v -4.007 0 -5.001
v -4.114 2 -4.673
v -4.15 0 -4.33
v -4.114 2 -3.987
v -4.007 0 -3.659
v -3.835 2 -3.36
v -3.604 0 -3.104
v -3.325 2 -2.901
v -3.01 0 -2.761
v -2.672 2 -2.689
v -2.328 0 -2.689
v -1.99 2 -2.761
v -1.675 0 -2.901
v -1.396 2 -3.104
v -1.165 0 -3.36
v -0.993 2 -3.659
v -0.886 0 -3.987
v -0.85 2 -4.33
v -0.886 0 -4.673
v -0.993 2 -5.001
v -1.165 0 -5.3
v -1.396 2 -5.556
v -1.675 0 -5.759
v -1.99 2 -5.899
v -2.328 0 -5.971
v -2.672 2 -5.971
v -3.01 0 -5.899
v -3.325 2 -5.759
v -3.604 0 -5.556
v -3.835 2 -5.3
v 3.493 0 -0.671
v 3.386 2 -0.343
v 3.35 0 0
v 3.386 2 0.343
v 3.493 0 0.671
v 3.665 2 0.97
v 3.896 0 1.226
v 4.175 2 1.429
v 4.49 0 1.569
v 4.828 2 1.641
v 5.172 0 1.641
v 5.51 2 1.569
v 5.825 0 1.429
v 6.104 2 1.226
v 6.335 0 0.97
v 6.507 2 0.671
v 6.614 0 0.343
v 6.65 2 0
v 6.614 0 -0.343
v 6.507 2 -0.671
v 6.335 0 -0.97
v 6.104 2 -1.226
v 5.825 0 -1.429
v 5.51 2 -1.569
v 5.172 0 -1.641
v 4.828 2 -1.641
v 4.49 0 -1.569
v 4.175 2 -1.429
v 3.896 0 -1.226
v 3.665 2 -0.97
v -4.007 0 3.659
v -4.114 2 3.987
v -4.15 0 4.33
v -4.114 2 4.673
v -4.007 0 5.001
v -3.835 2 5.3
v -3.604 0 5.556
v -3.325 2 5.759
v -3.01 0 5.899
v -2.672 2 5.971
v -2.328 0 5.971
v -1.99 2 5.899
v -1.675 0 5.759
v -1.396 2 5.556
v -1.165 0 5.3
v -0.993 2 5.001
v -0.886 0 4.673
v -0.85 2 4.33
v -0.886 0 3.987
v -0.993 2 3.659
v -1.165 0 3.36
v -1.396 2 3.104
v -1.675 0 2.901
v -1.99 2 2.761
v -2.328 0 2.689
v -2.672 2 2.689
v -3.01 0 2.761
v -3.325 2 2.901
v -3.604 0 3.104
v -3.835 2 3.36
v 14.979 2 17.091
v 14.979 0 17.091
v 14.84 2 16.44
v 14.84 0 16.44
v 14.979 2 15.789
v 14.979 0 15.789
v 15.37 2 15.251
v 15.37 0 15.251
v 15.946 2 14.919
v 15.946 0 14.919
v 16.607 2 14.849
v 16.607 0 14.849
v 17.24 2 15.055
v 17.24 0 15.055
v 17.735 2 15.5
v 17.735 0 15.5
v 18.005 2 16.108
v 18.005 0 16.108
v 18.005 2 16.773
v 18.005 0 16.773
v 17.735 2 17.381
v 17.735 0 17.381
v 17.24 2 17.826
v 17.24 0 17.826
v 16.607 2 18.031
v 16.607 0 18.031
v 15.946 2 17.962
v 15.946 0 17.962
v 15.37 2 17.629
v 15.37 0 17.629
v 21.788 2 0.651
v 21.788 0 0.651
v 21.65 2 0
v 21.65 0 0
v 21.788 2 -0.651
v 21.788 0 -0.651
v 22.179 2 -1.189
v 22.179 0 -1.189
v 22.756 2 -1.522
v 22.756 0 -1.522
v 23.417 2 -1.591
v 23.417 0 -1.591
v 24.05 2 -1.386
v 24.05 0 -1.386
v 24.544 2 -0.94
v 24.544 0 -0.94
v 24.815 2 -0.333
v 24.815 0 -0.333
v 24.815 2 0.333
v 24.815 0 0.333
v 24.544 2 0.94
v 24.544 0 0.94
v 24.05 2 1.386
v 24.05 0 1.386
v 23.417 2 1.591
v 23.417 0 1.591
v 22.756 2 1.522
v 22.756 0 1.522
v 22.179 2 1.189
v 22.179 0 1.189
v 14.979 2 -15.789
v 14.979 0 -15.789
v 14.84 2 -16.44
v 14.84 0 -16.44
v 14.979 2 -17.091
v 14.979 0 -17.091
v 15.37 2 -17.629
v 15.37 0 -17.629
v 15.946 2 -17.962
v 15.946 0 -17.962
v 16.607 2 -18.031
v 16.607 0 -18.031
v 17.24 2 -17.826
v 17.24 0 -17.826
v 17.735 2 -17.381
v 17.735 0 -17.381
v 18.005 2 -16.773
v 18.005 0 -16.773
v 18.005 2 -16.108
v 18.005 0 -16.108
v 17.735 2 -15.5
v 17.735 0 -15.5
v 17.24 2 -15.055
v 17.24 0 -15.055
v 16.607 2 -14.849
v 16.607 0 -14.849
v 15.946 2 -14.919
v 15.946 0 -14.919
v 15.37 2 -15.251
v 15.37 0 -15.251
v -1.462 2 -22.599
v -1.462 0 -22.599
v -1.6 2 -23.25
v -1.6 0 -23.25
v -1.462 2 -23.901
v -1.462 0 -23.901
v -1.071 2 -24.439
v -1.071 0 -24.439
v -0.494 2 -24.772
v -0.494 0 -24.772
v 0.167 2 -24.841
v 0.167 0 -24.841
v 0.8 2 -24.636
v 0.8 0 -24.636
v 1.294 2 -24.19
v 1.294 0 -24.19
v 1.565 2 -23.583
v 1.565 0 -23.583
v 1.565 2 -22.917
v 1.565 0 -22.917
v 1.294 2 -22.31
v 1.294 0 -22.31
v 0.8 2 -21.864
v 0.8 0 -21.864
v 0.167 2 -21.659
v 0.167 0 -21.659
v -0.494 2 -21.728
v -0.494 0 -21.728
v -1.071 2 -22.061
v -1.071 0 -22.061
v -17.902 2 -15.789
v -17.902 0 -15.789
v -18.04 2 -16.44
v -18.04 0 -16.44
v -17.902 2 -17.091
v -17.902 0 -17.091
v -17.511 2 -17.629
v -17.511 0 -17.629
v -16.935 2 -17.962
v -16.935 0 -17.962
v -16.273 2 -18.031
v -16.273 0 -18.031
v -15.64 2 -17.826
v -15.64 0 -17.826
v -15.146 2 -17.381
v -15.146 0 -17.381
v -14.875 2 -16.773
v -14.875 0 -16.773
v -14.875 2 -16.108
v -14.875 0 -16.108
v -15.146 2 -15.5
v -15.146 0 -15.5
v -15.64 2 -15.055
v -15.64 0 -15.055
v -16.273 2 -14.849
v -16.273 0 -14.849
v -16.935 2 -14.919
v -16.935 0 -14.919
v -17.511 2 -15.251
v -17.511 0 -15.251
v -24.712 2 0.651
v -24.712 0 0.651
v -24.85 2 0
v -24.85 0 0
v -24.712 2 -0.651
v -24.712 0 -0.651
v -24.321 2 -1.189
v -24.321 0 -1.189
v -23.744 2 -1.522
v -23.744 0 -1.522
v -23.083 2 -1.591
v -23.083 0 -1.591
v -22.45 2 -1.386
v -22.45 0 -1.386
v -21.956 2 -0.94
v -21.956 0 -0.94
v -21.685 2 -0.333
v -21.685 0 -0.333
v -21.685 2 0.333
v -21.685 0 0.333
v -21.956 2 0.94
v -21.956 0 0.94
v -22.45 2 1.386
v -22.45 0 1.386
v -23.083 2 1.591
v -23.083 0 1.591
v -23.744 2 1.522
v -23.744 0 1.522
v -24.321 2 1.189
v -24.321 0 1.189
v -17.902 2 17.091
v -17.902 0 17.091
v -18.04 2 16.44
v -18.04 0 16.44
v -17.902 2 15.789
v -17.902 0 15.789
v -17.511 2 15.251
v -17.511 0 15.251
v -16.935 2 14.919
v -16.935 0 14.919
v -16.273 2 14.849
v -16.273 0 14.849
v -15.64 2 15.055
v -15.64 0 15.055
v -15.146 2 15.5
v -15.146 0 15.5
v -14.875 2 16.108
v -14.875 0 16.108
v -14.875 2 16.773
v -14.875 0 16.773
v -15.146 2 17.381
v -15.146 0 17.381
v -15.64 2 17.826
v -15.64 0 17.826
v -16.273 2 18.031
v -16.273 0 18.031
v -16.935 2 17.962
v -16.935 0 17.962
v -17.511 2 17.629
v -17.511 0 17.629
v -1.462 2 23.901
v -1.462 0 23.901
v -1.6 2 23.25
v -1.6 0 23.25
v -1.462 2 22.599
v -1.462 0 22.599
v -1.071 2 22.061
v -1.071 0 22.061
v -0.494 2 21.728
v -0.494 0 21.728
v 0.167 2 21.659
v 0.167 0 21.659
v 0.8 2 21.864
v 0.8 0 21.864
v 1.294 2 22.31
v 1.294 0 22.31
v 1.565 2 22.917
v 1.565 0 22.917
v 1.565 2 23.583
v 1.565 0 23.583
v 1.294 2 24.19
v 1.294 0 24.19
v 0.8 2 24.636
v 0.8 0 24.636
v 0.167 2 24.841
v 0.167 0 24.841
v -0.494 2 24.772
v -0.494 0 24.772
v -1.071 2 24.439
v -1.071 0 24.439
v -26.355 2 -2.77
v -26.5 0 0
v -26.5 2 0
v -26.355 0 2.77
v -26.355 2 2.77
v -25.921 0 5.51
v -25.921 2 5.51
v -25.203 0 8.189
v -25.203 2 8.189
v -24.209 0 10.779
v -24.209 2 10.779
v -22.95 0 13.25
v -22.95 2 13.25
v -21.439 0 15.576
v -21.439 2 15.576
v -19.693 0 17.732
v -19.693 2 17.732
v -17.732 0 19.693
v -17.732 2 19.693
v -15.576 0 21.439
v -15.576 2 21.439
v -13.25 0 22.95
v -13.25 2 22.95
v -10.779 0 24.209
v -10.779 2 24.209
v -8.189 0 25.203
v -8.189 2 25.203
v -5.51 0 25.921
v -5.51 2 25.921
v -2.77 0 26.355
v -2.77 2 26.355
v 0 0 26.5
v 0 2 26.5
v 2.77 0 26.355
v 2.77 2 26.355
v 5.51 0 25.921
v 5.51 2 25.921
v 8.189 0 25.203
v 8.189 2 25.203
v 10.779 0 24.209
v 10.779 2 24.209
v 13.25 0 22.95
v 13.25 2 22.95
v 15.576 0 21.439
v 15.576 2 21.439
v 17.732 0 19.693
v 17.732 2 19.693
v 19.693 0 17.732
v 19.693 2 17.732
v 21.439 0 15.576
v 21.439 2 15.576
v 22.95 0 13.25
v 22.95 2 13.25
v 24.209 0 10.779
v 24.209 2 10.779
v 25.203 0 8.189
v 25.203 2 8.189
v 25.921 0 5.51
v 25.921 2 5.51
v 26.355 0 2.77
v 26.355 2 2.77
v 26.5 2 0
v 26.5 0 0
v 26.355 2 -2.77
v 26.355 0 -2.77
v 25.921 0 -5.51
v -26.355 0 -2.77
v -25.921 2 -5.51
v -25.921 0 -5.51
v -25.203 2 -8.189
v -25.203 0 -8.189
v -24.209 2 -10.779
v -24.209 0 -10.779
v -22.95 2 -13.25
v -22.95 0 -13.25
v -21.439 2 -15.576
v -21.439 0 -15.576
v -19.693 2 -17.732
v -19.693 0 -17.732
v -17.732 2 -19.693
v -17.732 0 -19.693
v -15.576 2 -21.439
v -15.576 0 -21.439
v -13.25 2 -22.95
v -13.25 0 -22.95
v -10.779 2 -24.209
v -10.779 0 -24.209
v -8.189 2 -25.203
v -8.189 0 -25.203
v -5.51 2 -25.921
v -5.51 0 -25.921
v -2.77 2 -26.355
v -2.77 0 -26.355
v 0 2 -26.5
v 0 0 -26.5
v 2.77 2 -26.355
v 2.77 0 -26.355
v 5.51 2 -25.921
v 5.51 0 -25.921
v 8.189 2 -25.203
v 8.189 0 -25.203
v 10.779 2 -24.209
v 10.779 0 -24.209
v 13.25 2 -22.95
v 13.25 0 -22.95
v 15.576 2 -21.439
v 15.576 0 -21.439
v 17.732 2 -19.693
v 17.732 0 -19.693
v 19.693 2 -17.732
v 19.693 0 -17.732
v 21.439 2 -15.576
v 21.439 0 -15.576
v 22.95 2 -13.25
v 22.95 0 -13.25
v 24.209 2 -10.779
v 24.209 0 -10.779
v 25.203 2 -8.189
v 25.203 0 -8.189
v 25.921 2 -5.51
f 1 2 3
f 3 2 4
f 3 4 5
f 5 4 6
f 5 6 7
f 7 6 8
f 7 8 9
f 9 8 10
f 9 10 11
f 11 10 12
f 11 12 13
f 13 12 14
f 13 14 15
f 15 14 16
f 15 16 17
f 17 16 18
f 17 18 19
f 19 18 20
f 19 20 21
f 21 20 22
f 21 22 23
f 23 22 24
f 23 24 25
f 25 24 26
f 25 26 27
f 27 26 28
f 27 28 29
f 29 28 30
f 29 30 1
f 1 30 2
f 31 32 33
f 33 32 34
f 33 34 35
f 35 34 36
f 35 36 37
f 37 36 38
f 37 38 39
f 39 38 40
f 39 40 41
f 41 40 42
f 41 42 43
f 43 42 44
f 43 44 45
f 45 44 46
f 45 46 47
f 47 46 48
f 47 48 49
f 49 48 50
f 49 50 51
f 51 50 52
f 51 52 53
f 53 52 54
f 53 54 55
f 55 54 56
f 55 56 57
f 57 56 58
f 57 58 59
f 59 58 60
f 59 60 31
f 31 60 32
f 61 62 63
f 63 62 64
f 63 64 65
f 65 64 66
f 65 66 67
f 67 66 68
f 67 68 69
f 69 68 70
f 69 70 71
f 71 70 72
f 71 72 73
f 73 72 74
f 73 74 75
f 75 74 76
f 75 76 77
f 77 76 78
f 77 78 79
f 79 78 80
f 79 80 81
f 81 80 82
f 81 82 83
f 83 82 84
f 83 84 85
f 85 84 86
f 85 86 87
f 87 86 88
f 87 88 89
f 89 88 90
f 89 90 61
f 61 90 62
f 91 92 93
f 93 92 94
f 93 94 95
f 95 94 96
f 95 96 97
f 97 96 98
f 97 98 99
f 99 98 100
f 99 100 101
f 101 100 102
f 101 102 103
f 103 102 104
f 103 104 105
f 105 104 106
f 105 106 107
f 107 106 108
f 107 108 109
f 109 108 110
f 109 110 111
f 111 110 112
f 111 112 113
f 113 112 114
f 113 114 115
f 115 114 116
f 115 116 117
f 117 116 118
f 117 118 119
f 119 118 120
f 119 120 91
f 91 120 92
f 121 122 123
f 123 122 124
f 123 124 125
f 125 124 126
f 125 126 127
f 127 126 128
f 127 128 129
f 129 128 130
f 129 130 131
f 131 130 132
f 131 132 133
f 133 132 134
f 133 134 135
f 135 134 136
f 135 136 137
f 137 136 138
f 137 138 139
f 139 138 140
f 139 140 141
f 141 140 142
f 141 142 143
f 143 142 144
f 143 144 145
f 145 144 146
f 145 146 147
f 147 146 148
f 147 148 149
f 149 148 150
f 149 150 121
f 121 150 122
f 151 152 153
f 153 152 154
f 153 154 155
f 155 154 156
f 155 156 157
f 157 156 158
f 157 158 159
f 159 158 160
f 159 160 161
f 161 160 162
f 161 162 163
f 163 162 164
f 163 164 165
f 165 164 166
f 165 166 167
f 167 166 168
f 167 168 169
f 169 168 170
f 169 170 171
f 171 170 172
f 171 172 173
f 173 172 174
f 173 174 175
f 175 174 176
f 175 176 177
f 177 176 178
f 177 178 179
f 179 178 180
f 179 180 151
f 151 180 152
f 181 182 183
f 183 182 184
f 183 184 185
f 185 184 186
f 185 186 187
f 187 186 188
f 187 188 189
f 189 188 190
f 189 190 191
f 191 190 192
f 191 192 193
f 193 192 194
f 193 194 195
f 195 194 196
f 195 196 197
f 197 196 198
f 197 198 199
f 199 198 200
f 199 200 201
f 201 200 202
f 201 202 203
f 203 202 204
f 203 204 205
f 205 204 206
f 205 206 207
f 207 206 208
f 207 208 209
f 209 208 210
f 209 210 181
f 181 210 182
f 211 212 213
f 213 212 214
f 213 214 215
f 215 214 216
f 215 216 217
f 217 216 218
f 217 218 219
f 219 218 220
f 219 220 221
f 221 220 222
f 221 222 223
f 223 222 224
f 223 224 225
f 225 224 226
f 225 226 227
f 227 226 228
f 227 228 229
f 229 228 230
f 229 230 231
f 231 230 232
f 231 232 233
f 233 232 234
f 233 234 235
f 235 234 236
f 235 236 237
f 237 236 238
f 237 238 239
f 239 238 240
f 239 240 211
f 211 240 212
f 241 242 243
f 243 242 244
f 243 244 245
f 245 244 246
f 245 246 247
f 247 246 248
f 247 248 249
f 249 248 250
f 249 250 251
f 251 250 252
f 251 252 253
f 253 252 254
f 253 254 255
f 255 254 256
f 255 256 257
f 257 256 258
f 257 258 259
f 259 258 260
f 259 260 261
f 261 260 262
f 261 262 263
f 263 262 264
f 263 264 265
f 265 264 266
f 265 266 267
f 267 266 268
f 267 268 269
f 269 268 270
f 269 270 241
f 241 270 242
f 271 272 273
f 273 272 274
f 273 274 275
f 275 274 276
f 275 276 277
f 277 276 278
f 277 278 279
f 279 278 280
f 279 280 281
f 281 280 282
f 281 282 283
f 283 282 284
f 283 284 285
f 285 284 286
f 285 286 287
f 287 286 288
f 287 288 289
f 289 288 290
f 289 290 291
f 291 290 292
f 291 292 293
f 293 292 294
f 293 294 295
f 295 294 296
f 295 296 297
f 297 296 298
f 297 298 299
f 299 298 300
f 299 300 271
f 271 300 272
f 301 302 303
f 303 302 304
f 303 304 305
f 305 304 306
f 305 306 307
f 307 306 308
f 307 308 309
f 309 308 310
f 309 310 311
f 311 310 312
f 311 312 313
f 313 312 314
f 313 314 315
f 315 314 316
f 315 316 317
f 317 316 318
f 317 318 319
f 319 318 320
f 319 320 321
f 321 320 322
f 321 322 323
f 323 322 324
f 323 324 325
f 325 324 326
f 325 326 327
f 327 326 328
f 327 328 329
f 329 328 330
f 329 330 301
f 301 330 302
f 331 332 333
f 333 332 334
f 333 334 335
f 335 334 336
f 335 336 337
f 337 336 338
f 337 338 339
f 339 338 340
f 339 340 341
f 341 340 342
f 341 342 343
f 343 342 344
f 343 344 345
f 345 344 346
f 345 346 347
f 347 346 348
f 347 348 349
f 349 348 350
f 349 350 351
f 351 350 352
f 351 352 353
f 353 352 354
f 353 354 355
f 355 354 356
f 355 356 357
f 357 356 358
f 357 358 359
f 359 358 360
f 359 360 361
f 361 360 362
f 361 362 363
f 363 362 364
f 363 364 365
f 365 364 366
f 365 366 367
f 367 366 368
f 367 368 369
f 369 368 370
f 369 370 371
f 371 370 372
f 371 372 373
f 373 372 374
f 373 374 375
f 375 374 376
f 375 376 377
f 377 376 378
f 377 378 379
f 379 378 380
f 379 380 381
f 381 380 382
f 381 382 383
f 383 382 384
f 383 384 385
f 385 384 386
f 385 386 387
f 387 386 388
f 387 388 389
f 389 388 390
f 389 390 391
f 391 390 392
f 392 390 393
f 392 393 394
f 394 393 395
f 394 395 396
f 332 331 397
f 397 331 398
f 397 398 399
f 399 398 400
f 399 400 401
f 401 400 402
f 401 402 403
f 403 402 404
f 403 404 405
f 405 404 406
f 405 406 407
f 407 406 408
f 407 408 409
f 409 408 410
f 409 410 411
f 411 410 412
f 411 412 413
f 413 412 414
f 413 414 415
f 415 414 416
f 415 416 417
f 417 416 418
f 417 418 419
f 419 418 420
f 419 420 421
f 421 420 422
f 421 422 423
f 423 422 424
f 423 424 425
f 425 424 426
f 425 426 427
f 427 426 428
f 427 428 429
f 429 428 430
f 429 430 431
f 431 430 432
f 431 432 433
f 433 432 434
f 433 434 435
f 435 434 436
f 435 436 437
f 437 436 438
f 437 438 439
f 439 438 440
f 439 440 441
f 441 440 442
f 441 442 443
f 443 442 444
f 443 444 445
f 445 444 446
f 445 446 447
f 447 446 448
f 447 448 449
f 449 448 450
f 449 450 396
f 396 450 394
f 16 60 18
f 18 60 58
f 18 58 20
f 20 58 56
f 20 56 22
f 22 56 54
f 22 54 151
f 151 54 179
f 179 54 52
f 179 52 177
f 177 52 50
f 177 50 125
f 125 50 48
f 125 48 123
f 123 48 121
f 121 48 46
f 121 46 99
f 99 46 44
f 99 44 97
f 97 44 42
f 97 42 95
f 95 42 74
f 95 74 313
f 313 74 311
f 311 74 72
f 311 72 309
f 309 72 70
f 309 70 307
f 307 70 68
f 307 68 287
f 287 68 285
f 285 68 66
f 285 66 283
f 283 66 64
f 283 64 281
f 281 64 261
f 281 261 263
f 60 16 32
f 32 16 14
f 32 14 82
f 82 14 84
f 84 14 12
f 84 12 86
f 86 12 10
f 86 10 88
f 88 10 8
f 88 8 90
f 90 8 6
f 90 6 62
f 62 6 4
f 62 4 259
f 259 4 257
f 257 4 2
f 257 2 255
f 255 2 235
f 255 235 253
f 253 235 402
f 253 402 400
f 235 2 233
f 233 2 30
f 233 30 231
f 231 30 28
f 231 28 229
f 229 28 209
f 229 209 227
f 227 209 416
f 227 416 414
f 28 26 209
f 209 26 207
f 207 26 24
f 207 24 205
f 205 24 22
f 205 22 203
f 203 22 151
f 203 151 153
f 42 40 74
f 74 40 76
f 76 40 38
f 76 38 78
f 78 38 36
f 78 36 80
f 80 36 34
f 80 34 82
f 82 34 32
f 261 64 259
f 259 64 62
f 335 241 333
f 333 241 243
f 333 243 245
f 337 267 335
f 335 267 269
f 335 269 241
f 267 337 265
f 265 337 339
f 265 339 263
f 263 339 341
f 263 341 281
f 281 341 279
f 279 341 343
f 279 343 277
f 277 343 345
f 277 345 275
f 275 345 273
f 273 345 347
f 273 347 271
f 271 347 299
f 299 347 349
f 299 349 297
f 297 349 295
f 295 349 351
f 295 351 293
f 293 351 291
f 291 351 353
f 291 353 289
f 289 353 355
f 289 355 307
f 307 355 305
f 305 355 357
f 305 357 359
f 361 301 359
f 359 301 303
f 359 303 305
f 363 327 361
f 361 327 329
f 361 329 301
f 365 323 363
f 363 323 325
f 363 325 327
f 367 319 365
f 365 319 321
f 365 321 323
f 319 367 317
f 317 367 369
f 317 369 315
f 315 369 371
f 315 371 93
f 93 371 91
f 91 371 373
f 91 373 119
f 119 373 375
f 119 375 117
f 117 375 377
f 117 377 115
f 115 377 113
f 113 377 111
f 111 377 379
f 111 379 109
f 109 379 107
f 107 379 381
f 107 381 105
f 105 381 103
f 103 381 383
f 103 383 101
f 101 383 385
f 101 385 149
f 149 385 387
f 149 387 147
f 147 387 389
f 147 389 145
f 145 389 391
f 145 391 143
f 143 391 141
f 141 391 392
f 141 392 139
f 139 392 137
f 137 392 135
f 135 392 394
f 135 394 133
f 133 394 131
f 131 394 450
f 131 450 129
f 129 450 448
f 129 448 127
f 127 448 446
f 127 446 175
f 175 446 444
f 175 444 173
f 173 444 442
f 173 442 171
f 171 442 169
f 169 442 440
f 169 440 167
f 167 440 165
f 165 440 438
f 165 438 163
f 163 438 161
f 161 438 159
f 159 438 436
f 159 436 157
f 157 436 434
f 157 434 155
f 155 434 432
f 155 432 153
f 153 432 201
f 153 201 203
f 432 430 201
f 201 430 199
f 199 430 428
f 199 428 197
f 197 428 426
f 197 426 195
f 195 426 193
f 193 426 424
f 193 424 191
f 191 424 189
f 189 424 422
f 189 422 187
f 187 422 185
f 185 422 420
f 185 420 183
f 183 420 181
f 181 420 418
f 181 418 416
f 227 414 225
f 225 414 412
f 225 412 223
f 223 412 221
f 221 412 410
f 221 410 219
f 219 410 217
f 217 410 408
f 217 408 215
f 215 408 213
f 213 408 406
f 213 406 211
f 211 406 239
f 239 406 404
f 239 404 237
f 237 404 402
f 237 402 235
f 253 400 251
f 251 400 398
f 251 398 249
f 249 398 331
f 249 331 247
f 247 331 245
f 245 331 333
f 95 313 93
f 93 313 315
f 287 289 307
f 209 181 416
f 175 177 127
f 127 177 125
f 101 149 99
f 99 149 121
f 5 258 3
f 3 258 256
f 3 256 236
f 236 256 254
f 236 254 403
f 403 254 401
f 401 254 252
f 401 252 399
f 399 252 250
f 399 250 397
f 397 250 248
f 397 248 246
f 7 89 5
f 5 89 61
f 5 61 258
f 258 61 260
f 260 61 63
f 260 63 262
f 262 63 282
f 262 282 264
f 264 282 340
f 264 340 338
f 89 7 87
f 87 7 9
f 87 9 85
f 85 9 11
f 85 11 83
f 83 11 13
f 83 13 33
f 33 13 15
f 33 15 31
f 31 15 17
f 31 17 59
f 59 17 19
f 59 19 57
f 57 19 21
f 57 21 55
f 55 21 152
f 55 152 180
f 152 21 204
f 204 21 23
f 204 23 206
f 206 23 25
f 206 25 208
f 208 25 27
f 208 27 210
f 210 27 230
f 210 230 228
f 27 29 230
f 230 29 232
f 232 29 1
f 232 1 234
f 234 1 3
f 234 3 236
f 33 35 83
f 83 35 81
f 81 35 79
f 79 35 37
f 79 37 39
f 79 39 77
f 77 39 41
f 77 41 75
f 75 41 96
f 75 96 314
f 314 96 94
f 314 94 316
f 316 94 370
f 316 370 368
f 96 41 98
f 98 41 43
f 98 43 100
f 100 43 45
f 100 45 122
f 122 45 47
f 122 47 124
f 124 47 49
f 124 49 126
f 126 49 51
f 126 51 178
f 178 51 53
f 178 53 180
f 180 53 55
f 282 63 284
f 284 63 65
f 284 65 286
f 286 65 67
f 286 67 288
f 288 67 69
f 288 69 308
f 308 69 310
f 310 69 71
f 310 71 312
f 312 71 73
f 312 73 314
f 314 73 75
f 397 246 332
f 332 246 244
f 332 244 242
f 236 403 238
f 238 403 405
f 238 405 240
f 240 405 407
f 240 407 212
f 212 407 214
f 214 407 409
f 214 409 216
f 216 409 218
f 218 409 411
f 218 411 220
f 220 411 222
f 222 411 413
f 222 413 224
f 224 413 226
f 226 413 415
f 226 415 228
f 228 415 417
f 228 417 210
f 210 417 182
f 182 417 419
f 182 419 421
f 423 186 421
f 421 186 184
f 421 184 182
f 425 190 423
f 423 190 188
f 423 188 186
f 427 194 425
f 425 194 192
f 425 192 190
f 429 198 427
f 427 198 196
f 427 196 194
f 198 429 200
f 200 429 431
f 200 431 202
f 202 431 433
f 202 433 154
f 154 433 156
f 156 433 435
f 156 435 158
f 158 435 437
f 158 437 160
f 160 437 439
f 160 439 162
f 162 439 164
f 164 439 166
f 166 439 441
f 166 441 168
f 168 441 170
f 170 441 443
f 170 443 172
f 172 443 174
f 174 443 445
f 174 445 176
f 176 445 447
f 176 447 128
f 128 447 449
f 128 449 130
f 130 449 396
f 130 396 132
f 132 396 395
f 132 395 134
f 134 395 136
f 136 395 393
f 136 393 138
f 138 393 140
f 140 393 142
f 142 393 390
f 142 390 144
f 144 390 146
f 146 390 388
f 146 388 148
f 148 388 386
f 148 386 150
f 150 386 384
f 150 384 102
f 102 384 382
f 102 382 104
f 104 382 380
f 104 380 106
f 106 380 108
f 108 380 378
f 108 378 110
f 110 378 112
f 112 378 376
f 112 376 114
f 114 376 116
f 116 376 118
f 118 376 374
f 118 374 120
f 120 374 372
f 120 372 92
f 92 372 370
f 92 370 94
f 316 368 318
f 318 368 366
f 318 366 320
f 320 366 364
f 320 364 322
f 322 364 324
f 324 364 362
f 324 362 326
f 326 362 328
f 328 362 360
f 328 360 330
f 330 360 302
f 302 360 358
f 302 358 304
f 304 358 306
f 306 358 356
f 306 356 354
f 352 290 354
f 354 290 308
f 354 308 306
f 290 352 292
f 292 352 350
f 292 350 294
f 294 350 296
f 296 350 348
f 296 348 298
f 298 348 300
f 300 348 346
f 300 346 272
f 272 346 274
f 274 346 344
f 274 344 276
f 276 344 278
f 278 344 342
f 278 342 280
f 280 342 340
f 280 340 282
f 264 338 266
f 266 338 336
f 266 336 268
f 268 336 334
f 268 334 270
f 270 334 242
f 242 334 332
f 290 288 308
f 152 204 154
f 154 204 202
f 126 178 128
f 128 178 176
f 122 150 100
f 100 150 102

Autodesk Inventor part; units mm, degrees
ref_plane "YZ Plane" through (0, 0, 0) normal (1, 0, 0) x (0, 1, 0)
ref_plane "XZ Plane" through (0, 0, 0) normal (0, 1, 0) x (-1, 0, 0)
ref_plane "XY Plane" through (0, 0, 0) normal (0, 0, 1) x (1, 0, 0)
sketch "Szkic1" plane through (0, 0, 0) normal (0, 1, 0) x (-1, 0, 0)
  circle A0 centre (0, 0) radius 20
  circle A1 centre (0, 0) radius 26.5
  line L0 (0, 26.5) -> (0, 20)
  circle A2 centre (0, 23.25) radius 1.6
  circle A3 centre (-16.4402, 16.4402) radius 1.6
  circle A4 centre (-23.25, 0) radius 1.6
  circle A5 centre (-16.4402, -16.4402) radius 1.6
  circle A6 centre (0, -23.25) radius 1.6
  circle A7 centre (16.4402, -16.4402) radius 1.6
  circle A8 centre (23.25, 0) radius 1.6
  circle A9 centre (16.4402, 16.4402) radius 1.6
  dimension "d0" = 40
  dimension "d1" = 53
  dimension "d2" = 3.2
  dimension "d5" = 360
extrude "Wyciągnięcie proste1" add sketch "Szkic1" along normal blind 2 contours A0 | A1
sketch "Szkic3" plane through (0, 2, 0) normal (0, 1, 0) x (1, 0, 0)
  circle A0 centre (0, 0) radius 5
  circle A1 centre (5, 0) radius 1.65
  circle A2 centre (-2.5, 4.3301) radius 1.65
  circle A3 centre (-2.5, -4.3301) radius 1.65
  point P0 (1.5451, -4.7553)
  point P1 (1.5451, 4.7553)
  point P2 (-4.0451, 2.9389)
  dimension "d22" = 10
  dimension "d39" = 3.3
  dimension "d42" = 360
hole "Otwór2" at (5, 2, 0) at (-2.5, 2, -4.3301) at (-2.5, 2, 4.3301) direction (0, -1, 0) diameter 3.3 end through all
properties part number "Bell_KoloFormaDol"
